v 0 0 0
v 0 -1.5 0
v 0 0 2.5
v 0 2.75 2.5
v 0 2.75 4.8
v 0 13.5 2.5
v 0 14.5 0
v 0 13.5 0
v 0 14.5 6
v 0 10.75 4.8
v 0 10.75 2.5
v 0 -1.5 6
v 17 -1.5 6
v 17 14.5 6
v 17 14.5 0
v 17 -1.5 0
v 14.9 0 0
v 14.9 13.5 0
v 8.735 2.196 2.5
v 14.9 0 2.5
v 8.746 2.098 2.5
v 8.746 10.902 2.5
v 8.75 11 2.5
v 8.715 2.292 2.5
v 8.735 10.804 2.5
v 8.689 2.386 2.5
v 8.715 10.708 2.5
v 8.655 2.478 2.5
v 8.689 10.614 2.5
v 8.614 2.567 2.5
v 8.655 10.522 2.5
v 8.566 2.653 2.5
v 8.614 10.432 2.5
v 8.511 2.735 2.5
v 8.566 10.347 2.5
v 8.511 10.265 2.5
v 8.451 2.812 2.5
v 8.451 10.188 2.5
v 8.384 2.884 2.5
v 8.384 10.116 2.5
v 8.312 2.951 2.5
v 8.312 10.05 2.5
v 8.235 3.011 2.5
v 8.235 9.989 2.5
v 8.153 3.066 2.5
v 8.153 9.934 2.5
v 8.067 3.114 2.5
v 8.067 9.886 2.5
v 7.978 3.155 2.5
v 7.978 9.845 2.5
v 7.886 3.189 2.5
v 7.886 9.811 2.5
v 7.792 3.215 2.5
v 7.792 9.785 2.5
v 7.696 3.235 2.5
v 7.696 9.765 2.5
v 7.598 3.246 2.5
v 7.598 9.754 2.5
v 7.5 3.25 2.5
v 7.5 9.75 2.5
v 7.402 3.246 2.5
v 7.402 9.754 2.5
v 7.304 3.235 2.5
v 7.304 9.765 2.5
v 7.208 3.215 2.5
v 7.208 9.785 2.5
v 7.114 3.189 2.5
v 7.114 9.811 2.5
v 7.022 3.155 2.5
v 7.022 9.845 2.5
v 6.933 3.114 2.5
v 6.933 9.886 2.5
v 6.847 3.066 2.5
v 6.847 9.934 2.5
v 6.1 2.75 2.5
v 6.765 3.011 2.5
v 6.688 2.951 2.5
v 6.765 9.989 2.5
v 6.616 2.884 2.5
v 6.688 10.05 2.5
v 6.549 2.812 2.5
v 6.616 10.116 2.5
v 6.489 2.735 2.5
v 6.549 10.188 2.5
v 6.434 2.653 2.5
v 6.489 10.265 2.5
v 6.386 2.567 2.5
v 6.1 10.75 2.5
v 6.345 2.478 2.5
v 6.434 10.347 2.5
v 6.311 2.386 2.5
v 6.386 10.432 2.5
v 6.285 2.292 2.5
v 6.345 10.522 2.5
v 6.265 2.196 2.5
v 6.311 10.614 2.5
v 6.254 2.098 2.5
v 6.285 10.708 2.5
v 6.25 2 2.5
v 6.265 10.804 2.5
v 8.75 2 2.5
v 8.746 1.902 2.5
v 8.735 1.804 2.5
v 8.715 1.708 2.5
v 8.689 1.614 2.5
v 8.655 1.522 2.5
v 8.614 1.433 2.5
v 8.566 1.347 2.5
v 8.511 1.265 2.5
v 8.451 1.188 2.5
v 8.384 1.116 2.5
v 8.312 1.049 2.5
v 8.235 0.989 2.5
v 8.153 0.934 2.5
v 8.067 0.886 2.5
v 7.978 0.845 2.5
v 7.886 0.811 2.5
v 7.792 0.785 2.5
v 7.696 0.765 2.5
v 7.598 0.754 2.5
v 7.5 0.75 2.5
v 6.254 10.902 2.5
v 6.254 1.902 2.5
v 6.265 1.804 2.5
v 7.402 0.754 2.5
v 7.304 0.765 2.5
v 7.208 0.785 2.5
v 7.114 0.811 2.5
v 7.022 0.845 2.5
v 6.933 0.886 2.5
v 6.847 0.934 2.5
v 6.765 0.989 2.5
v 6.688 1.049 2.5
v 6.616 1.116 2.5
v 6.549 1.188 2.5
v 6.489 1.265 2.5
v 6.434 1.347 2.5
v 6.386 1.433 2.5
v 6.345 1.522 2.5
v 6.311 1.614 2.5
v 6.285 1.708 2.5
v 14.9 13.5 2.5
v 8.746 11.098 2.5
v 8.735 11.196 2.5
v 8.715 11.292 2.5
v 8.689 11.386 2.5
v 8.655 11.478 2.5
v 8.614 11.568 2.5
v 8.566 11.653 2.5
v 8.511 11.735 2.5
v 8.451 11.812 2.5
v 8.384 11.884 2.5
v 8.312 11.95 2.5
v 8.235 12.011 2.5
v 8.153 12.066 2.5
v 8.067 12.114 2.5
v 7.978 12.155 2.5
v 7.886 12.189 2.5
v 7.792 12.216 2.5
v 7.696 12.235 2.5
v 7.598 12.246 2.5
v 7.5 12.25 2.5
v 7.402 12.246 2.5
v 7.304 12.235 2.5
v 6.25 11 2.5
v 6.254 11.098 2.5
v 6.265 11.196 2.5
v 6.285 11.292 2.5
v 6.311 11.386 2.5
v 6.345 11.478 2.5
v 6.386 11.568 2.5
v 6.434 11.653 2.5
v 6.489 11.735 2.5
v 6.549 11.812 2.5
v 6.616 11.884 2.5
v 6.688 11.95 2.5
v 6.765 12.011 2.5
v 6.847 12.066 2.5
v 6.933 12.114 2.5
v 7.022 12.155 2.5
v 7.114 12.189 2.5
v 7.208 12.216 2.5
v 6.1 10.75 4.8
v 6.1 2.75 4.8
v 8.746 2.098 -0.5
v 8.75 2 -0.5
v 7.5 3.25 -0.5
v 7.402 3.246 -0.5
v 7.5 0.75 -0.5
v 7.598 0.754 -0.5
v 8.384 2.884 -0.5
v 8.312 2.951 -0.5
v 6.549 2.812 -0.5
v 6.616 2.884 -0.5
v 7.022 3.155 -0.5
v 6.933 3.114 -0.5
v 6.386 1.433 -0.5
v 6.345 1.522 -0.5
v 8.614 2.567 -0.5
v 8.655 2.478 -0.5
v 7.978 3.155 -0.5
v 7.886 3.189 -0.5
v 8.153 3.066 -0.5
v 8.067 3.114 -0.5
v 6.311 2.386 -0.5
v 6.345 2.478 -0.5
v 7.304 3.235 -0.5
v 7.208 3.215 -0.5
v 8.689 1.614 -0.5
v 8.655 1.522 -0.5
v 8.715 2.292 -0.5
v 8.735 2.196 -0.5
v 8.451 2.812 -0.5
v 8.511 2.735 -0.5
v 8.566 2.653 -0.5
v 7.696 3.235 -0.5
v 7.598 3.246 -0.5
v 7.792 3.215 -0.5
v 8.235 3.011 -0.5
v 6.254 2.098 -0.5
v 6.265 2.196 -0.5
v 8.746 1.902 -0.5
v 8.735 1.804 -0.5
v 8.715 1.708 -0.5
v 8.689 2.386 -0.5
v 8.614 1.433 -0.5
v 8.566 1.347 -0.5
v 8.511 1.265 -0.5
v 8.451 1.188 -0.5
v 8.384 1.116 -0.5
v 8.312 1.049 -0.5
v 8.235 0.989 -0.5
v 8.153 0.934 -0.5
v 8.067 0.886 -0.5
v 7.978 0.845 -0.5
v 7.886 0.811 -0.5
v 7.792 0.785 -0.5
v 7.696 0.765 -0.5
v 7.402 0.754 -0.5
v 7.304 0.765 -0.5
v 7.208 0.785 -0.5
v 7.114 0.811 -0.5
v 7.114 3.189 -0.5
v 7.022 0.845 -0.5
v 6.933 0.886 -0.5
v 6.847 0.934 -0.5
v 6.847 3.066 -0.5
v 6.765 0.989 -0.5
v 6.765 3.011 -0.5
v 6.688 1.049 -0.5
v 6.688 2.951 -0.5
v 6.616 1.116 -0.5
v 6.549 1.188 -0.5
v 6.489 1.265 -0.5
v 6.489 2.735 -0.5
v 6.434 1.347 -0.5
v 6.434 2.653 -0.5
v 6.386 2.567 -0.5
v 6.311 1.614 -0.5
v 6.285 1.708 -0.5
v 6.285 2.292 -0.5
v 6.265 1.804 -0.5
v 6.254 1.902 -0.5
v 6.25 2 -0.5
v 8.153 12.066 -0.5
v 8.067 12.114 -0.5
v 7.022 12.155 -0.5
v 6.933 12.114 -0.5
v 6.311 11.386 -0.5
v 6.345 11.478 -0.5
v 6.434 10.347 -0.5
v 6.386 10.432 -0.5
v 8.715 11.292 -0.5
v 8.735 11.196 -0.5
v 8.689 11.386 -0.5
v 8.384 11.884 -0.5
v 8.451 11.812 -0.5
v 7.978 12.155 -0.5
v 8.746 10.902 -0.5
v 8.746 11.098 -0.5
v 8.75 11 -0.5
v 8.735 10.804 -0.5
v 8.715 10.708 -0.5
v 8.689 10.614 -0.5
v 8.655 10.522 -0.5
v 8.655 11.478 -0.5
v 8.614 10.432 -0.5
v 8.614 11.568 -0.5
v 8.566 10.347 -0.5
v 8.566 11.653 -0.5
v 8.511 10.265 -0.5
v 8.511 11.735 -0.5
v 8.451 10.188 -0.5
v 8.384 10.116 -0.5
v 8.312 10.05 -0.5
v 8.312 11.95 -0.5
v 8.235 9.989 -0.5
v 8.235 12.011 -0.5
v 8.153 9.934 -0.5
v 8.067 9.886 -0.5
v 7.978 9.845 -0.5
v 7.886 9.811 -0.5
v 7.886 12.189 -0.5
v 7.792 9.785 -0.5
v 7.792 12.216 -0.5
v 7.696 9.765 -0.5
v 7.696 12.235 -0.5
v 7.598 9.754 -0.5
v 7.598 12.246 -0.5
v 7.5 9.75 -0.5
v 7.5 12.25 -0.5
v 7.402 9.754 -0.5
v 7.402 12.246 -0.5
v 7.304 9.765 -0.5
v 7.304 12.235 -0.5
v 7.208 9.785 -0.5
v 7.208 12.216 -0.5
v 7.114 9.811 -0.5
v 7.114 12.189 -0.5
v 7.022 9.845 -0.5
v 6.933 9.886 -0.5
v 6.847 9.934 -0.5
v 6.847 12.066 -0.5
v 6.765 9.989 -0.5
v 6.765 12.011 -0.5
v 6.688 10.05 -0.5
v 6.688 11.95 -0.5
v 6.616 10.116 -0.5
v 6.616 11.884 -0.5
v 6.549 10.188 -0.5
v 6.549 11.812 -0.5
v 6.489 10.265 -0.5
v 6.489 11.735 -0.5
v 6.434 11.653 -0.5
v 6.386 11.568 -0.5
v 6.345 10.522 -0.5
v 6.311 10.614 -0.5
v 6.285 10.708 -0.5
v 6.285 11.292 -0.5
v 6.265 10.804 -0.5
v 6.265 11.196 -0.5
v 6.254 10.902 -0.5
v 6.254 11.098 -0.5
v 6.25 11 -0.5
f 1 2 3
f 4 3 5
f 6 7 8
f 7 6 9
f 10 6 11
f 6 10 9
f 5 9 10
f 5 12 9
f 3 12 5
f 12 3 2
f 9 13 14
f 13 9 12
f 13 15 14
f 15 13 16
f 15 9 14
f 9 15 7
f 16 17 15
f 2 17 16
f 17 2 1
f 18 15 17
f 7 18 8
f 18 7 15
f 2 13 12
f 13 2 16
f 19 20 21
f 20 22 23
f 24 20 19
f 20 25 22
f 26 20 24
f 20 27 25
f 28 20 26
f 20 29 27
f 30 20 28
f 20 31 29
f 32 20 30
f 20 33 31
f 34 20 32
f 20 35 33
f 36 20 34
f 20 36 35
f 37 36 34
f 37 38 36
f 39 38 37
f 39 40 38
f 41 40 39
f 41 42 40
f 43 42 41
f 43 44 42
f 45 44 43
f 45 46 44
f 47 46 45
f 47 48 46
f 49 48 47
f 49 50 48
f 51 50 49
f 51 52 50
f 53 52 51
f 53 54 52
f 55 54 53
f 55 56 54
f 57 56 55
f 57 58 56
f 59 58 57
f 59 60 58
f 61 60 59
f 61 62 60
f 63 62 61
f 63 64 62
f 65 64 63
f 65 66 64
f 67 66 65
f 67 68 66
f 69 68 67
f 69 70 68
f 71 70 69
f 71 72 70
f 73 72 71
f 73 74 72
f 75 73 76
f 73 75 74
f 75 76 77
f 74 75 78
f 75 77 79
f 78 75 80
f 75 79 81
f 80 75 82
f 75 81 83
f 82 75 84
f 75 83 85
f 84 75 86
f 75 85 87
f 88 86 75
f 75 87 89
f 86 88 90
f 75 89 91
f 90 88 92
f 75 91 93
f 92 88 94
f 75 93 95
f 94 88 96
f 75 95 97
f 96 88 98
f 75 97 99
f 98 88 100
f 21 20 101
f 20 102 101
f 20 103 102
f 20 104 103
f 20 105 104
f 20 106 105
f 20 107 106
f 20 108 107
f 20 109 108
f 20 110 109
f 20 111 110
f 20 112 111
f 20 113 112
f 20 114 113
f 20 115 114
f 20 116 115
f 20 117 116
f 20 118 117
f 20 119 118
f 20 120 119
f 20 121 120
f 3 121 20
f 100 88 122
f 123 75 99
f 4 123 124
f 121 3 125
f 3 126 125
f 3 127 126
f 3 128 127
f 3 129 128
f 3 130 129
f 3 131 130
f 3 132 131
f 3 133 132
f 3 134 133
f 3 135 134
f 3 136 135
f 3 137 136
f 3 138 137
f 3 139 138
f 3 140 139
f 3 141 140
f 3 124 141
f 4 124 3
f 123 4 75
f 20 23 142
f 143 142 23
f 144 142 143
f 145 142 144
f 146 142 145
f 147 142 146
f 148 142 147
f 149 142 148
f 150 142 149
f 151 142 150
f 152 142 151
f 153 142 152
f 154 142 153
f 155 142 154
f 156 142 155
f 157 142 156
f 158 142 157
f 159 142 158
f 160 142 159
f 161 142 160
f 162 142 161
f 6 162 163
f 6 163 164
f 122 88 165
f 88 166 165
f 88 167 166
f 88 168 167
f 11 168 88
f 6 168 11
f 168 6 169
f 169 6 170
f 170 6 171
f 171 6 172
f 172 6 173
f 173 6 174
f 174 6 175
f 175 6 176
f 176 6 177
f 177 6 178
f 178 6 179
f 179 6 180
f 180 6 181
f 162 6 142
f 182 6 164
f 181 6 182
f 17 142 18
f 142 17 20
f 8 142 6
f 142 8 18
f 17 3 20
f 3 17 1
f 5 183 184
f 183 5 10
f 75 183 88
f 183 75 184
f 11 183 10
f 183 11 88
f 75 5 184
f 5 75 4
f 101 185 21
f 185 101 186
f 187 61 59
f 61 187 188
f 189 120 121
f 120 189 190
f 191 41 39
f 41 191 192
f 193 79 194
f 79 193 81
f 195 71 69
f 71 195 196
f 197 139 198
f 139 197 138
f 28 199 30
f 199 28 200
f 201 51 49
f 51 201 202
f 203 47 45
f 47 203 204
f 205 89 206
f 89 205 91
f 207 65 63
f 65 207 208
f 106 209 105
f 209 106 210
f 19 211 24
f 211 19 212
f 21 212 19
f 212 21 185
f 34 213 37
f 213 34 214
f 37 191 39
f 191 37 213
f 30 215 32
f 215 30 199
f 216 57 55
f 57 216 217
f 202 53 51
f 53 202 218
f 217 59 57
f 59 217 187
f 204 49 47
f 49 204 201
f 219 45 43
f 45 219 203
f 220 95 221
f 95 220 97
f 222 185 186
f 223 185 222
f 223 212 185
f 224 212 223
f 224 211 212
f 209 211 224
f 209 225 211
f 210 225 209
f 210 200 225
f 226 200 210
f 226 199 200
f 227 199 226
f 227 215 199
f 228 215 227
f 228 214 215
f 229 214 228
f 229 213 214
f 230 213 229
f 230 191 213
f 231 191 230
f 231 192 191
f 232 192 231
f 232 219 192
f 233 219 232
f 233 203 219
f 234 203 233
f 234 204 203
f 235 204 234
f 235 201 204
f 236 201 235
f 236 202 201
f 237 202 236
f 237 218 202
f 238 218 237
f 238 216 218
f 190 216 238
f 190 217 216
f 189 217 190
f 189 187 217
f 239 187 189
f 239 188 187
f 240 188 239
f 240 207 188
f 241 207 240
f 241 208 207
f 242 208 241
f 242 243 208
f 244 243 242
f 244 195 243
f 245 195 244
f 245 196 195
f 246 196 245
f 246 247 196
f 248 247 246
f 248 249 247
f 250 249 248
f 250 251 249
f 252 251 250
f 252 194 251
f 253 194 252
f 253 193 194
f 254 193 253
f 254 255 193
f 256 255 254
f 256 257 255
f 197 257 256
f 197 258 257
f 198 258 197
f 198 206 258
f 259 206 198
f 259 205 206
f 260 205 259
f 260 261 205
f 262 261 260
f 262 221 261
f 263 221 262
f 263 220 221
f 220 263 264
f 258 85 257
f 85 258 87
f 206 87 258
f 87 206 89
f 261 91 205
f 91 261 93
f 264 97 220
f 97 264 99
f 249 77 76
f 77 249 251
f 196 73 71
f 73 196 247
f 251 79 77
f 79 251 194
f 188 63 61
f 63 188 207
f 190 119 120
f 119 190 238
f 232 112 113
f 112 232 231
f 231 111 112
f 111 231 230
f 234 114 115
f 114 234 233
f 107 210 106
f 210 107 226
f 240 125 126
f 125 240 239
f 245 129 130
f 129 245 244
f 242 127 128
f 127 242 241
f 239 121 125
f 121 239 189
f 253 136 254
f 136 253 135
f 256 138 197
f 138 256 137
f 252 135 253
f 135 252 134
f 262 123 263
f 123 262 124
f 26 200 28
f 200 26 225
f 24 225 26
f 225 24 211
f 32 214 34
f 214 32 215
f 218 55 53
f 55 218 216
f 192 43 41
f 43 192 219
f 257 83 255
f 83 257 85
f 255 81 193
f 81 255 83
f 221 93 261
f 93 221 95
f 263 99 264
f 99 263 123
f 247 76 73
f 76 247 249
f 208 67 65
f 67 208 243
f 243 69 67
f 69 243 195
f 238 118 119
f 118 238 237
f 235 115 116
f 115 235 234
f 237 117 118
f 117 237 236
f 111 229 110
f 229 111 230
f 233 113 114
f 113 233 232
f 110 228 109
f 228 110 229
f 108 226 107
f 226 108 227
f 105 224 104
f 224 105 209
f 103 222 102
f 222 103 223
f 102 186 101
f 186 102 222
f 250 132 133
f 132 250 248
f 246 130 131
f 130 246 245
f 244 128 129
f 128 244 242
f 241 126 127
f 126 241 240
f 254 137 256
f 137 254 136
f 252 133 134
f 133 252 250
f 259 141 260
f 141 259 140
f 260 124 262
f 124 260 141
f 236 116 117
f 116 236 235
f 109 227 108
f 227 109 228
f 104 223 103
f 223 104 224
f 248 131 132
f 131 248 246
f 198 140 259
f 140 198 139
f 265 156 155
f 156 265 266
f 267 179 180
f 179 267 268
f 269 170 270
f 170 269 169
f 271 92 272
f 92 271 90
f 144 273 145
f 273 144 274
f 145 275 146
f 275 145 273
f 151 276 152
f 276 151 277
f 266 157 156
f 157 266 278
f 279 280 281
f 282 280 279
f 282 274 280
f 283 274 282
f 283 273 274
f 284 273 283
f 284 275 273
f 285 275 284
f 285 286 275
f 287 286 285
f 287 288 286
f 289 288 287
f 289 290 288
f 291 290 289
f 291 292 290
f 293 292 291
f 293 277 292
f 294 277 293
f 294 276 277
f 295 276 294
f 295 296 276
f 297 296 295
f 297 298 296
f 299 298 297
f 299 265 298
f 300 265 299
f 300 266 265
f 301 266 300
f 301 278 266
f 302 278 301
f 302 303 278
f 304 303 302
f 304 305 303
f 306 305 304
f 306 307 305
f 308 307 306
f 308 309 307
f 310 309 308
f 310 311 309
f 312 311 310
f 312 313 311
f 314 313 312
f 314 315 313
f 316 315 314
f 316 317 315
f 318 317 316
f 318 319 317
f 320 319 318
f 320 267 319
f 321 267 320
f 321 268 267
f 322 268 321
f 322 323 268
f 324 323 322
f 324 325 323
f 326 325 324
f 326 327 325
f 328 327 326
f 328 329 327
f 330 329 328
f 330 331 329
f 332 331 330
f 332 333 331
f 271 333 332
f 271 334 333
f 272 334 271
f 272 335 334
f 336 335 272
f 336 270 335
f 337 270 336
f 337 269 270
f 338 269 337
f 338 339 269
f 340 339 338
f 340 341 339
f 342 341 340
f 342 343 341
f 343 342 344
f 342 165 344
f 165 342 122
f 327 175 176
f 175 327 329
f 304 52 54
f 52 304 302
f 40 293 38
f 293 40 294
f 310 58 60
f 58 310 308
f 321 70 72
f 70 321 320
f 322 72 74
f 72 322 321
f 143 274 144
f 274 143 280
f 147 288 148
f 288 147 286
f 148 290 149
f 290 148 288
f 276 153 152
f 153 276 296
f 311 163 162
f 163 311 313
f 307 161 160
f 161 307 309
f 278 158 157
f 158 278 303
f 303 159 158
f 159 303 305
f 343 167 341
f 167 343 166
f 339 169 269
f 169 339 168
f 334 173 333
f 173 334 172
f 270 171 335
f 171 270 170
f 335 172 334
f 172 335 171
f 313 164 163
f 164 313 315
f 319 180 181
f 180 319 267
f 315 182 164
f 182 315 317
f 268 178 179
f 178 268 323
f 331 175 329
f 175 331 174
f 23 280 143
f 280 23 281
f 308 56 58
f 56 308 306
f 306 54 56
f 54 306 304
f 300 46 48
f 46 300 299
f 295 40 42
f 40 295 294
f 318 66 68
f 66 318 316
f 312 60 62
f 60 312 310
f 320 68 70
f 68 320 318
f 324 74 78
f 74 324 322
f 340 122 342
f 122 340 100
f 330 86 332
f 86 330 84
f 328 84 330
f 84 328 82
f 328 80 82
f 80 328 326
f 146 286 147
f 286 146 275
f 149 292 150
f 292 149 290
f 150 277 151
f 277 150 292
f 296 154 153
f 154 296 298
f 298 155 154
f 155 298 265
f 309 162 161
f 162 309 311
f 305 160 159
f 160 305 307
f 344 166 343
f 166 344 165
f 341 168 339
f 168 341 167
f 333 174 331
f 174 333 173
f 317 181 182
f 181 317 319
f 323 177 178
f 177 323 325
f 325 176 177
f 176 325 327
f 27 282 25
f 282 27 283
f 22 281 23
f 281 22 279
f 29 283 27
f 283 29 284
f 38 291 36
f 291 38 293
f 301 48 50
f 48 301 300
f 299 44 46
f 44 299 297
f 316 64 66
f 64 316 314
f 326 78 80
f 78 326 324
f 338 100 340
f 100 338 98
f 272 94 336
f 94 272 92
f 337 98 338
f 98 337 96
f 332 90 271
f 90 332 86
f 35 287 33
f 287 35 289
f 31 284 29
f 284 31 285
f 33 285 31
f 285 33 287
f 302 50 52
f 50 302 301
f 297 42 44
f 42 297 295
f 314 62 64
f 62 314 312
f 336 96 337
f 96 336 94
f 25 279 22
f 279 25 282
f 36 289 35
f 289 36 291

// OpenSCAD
USB_PCB_SIZE_X = 14.9;
USB_PCB_SIZE_Y = 13.5;
USB_PCB_SIZE_Z =  2.5;

USB_CONN_X = 6.1;
USB_CONN_Y = 8.0;
USB_CONN_Z = 2.3;

union() {
    difference() {
        translate([0, -1.5, 0]) cube([17, 16, 6]);
        cube([USB_PCB_SIZE_X, USB_PCB_SIZE_Y, USB_PCB_SIZE_Z]);
        BOX_A = USB_PCB_SIZE_Y / 2 - USB_CONN_Y /2;
        translate([0, BOX_A, USB_PCB_SIZE_Z]) {
            cube([USB_CONN_X, USB_CONN_Y, USB_CONN_Z]);
        }
    }
    translate([7.5, 2, -0.5]) {
        cylinder(d=2.5, h=4, $fn=80);
    }
    translate([7.5, USB_PCB_SIZE_Y - 2.5, -0.5]) {
        cylinder(d=2.5, h=4, $fn=80);
    }
}
